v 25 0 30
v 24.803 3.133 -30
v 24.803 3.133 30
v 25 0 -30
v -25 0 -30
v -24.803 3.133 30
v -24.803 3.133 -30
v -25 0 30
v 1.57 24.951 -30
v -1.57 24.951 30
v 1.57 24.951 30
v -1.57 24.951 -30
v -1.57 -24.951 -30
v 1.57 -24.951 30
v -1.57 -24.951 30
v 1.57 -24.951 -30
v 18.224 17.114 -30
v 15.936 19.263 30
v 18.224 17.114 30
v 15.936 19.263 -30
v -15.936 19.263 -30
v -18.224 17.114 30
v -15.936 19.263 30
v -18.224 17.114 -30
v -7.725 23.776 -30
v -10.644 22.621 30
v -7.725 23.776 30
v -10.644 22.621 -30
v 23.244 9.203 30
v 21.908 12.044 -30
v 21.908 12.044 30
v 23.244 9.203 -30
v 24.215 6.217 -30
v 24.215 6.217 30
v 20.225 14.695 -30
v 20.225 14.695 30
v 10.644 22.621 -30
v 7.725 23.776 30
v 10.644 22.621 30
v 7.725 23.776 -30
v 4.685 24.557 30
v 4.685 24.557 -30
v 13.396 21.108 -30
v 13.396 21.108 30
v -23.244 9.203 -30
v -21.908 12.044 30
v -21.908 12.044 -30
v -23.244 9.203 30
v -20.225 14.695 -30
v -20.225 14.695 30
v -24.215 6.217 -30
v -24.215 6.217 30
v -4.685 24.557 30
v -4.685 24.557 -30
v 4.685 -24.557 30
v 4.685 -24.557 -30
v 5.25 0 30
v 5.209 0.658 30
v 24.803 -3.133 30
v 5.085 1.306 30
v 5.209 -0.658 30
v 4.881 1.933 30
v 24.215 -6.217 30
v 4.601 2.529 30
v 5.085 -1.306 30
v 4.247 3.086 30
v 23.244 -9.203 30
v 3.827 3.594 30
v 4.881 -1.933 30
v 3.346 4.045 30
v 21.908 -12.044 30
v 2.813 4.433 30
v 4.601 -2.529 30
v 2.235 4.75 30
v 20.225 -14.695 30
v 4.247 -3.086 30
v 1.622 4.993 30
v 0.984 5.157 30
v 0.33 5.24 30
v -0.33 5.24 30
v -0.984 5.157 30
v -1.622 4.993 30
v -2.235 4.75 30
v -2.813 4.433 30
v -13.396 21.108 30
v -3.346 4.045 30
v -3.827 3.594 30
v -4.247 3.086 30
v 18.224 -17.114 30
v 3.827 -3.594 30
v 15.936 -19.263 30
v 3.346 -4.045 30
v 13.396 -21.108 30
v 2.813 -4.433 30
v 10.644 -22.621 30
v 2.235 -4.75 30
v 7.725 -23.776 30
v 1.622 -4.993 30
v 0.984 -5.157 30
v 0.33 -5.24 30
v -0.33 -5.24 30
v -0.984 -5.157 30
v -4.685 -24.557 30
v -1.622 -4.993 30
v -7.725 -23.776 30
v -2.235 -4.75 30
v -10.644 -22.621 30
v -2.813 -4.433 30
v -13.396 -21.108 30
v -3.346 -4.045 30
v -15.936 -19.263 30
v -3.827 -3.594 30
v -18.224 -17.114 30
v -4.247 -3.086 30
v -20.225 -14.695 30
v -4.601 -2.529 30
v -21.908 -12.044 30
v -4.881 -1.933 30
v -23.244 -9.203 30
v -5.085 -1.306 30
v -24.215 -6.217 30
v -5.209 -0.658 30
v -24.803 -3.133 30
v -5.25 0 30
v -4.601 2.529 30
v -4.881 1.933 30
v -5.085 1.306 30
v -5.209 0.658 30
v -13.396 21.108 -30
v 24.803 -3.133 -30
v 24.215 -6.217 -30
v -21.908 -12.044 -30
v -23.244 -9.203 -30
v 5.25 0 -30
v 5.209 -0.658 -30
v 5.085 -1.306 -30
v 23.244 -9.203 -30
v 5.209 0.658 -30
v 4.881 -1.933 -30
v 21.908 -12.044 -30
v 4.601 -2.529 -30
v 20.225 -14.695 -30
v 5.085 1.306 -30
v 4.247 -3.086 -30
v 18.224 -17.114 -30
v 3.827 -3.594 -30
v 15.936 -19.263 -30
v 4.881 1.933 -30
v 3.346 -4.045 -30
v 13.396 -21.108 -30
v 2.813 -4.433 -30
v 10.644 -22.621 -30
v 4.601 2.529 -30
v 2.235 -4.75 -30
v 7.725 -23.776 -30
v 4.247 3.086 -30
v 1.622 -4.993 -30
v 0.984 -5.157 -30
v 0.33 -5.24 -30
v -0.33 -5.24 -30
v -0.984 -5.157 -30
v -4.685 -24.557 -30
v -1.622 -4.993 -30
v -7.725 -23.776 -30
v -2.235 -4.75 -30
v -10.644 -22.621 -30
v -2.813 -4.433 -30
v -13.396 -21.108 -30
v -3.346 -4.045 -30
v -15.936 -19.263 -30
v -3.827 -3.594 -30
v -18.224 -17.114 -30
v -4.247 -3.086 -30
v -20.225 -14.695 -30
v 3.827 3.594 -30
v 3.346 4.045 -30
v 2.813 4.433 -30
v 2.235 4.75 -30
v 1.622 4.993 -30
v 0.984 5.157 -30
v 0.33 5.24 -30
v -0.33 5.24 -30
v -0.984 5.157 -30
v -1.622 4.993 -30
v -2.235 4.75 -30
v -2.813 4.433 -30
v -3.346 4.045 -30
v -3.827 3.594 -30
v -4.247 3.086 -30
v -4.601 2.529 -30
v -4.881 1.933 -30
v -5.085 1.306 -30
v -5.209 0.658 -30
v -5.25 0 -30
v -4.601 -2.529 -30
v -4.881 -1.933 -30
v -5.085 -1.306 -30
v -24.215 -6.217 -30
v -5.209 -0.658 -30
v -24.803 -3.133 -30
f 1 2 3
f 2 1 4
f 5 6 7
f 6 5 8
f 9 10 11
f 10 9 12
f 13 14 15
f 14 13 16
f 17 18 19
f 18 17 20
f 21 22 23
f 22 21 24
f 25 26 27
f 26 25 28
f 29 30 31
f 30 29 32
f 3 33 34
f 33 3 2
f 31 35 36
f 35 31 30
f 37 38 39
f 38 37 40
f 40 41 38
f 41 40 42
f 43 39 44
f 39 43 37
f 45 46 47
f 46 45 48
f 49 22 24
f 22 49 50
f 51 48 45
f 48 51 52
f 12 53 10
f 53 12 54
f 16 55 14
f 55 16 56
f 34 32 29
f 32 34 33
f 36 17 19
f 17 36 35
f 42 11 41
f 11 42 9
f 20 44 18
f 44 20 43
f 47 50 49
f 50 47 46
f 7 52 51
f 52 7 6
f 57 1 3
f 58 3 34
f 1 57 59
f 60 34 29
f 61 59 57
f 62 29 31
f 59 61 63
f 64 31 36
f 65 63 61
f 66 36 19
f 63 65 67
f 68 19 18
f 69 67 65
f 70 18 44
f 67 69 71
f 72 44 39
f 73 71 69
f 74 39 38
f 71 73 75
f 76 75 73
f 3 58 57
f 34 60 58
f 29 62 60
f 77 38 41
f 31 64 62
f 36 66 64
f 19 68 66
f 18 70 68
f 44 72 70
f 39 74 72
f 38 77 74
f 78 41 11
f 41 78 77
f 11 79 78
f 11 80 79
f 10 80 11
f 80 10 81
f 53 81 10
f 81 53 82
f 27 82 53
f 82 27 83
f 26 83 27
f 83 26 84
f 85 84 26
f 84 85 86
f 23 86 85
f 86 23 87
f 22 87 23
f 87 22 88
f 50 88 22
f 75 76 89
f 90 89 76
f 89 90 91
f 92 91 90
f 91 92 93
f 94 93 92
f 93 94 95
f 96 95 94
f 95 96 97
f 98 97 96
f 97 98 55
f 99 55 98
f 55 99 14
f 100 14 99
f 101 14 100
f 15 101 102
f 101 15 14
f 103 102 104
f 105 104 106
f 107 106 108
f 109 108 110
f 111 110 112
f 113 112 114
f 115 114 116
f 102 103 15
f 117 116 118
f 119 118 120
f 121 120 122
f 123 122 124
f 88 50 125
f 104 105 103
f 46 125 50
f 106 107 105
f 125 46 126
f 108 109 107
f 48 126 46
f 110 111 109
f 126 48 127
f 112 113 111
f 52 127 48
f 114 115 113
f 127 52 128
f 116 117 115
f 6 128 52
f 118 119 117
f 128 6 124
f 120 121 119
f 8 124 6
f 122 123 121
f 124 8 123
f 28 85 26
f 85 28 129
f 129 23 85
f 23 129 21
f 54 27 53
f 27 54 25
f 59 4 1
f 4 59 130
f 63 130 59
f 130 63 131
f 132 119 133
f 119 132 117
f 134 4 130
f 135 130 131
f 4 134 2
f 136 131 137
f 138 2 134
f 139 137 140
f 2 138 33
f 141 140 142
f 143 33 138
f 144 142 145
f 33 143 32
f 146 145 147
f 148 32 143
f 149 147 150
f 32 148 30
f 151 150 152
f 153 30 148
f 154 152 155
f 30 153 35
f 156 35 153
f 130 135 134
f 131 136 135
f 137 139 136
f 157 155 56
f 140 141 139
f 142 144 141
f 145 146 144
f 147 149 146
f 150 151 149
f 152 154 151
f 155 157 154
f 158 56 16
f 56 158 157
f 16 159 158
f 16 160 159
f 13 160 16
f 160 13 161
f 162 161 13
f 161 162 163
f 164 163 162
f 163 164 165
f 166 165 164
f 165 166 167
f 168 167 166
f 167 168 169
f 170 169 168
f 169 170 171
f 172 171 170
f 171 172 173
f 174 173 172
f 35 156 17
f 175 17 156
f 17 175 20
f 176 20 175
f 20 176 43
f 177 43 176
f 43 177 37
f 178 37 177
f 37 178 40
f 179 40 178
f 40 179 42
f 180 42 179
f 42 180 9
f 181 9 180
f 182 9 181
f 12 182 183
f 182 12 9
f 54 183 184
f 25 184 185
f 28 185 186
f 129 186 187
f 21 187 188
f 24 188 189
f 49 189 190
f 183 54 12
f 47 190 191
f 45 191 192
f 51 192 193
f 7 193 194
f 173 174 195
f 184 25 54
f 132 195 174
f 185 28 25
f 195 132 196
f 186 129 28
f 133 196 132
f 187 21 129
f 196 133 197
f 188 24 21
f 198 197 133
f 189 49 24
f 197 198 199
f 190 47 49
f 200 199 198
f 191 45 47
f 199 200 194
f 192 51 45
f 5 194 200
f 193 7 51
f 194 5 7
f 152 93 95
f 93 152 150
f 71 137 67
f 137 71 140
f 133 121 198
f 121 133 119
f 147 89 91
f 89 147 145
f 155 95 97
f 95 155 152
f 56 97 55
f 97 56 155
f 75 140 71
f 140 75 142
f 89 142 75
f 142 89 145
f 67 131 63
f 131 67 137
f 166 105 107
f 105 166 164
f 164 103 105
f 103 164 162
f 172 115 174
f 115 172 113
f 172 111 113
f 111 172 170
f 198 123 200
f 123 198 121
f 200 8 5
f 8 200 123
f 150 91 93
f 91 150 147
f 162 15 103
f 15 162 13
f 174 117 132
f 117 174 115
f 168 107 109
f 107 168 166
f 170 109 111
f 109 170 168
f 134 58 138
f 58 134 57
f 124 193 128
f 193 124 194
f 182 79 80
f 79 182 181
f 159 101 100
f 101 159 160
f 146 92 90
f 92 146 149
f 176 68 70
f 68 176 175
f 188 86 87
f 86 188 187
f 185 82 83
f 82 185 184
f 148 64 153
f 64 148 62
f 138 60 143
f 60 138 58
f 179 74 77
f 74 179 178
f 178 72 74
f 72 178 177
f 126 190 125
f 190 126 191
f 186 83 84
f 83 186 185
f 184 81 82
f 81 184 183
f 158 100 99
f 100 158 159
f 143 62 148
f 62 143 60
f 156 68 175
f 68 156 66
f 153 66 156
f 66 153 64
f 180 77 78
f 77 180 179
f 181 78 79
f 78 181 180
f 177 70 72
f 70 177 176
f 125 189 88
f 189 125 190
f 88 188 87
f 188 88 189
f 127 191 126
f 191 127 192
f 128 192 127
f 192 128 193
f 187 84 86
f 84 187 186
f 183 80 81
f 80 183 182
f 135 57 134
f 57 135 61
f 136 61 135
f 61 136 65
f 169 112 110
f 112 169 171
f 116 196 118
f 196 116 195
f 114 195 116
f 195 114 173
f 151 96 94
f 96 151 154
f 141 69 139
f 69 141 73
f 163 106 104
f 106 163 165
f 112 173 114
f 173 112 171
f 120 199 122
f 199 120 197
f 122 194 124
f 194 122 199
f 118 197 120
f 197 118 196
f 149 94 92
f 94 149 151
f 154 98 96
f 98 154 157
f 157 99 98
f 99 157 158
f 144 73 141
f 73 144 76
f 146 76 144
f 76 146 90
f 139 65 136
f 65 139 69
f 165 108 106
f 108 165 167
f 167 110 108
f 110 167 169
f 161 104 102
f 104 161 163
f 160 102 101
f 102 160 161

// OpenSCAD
$fn = 50;


difference() {
	union() {
		translate(v = [0, 0, -30.0000000000]) {
			cylinder(h = 60, r = 25.0000000000);
		}
	}
	union() {
		translate(v = [0, 0, -100.0000000000]) {
			cylinder(h = 200, r = 5.2500000000);
		}
	}
}
